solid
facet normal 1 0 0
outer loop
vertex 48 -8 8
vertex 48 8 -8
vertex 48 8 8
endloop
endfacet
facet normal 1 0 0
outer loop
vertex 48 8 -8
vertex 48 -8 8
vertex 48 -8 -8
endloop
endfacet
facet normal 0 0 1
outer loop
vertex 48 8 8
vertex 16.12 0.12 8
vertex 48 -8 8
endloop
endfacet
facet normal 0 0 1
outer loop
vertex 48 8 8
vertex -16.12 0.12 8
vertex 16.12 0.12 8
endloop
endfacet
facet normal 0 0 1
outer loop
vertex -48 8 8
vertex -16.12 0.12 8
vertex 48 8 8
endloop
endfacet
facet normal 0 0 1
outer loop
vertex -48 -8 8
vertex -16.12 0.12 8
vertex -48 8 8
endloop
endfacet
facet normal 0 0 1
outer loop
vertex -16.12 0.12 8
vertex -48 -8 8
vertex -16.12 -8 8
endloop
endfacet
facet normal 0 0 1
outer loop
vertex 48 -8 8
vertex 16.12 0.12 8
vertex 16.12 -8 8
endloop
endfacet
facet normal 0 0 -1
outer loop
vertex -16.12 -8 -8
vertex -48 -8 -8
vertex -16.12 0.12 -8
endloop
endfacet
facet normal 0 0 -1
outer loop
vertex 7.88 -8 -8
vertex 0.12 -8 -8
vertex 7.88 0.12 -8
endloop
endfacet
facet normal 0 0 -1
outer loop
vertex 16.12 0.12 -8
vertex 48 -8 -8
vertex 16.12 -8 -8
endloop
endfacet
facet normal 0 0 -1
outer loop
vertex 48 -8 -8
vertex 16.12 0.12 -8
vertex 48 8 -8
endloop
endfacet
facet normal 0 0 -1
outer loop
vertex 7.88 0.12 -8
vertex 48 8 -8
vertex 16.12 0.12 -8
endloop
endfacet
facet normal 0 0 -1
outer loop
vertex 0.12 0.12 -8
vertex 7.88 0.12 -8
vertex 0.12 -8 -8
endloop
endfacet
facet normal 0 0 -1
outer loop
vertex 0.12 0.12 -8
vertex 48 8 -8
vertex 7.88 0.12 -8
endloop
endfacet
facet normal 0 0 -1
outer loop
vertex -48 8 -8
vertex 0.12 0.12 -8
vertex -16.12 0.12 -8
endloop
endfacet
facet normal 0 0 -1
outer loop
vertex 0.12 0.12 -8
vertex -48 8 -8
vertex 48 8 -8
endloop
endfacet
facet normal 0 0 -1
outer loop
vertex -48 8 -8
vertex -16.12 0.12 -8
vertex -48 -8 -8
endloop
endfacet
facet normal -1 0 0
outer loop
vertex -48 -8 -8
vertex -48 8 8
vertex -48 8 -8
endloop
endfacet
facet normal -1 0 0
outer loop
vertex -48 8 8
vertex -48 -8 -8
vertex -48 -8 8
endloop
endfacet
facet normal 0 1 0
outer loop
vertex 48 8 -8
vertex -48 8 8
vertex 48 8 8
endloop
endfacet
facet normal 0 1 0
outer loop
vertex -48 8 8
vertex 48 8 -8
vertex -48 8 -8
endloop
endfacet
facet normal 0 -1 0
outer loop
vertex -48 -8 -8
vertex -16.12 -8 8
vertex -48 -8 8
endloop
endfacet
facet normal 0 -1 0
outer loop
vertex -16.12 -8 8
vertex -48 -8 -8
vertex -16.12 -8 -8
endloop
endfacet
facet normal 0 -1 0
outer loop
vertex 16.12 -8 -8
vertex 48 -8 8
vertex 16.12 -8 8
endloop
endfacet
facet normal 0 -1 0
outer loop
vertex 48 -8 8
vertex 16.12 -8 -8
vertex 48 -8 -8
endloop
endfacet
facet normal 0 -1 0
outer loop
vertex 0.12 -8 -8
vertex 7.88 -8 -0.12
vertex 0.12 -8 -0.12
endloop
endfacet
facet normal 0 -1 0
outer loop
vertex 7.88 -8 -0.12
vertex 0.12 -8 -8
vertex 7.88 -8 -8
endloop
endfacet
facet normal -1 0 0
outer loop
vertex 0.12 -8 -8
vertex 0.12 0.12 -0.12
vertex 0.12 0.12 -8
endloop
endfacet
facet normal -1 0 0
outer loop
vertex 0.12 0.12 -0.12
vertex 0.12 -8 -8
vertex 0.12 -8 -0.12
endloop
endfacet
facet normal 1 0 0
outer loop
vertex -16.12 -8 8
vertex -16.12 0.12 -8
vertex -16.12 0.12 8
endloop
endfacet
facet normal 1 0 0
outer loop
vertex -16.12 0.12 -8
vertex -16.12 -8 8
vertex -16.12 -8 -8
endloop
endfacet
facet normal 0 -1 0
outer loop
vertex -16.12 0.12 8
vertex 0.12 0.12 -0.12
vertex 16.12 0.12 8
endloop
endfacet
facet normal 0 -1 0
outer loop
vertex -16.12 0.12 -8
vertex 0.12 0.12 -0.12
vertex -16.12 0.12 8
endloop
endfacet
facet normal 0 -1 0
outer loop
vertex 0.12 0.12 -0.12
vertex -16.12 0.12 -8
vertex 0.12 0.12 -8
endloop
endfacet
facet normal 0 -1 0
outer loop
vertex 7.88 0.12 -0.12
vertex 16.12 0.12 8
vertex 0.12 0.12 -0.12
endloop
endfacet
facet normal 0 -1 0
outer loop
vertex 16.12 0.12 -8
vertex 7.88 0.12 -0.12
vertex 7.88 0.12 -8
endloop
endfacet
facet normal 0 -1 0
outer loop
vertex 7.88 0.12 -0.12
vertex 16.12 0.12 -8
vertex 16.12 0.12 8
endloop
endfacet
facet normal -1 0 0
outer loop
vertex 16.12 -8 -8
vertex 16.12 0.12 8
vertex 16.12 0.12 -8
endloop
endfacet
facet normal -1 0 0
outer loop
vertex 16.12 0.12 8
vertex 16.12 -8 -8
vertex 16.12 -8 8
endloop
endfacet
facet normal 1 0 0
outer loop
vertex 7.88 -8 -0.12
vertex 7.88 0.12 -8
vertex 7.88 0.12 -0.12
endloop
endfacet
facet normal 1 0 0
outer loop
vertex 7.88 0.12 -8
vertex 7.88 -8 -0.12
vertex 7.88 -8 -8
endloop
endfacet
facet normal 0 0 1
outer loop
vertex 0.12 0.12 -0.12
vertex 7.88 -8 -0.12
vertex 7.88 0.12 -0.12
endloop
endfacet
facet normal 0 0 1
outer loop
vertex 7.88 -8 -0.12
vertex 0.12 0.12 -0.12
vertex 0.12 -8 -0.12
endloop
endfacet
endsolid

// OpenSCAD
measure = 8;
dd = 0.12/measure;

scale([measure,measure,measure]) difference() {
    cube(size = [12,2,2], center = true);
    translate([-1,-0.5,0]) 
        cube(size = [2 + 2*dd, 1 + 2*dd, 2 + 2*dd], center=true);
    translate([1.5,-0.5,0]) 
        cube(size=[1 + 2*dd, 1 + 2*dd, 2 + 2*dd], center=true);
    translate([0.5,-0.5,0.5]) 
        cube(size=[1 + 2*dd, 1 + 2*dd, 1 + 2*dd], center=true);
}
